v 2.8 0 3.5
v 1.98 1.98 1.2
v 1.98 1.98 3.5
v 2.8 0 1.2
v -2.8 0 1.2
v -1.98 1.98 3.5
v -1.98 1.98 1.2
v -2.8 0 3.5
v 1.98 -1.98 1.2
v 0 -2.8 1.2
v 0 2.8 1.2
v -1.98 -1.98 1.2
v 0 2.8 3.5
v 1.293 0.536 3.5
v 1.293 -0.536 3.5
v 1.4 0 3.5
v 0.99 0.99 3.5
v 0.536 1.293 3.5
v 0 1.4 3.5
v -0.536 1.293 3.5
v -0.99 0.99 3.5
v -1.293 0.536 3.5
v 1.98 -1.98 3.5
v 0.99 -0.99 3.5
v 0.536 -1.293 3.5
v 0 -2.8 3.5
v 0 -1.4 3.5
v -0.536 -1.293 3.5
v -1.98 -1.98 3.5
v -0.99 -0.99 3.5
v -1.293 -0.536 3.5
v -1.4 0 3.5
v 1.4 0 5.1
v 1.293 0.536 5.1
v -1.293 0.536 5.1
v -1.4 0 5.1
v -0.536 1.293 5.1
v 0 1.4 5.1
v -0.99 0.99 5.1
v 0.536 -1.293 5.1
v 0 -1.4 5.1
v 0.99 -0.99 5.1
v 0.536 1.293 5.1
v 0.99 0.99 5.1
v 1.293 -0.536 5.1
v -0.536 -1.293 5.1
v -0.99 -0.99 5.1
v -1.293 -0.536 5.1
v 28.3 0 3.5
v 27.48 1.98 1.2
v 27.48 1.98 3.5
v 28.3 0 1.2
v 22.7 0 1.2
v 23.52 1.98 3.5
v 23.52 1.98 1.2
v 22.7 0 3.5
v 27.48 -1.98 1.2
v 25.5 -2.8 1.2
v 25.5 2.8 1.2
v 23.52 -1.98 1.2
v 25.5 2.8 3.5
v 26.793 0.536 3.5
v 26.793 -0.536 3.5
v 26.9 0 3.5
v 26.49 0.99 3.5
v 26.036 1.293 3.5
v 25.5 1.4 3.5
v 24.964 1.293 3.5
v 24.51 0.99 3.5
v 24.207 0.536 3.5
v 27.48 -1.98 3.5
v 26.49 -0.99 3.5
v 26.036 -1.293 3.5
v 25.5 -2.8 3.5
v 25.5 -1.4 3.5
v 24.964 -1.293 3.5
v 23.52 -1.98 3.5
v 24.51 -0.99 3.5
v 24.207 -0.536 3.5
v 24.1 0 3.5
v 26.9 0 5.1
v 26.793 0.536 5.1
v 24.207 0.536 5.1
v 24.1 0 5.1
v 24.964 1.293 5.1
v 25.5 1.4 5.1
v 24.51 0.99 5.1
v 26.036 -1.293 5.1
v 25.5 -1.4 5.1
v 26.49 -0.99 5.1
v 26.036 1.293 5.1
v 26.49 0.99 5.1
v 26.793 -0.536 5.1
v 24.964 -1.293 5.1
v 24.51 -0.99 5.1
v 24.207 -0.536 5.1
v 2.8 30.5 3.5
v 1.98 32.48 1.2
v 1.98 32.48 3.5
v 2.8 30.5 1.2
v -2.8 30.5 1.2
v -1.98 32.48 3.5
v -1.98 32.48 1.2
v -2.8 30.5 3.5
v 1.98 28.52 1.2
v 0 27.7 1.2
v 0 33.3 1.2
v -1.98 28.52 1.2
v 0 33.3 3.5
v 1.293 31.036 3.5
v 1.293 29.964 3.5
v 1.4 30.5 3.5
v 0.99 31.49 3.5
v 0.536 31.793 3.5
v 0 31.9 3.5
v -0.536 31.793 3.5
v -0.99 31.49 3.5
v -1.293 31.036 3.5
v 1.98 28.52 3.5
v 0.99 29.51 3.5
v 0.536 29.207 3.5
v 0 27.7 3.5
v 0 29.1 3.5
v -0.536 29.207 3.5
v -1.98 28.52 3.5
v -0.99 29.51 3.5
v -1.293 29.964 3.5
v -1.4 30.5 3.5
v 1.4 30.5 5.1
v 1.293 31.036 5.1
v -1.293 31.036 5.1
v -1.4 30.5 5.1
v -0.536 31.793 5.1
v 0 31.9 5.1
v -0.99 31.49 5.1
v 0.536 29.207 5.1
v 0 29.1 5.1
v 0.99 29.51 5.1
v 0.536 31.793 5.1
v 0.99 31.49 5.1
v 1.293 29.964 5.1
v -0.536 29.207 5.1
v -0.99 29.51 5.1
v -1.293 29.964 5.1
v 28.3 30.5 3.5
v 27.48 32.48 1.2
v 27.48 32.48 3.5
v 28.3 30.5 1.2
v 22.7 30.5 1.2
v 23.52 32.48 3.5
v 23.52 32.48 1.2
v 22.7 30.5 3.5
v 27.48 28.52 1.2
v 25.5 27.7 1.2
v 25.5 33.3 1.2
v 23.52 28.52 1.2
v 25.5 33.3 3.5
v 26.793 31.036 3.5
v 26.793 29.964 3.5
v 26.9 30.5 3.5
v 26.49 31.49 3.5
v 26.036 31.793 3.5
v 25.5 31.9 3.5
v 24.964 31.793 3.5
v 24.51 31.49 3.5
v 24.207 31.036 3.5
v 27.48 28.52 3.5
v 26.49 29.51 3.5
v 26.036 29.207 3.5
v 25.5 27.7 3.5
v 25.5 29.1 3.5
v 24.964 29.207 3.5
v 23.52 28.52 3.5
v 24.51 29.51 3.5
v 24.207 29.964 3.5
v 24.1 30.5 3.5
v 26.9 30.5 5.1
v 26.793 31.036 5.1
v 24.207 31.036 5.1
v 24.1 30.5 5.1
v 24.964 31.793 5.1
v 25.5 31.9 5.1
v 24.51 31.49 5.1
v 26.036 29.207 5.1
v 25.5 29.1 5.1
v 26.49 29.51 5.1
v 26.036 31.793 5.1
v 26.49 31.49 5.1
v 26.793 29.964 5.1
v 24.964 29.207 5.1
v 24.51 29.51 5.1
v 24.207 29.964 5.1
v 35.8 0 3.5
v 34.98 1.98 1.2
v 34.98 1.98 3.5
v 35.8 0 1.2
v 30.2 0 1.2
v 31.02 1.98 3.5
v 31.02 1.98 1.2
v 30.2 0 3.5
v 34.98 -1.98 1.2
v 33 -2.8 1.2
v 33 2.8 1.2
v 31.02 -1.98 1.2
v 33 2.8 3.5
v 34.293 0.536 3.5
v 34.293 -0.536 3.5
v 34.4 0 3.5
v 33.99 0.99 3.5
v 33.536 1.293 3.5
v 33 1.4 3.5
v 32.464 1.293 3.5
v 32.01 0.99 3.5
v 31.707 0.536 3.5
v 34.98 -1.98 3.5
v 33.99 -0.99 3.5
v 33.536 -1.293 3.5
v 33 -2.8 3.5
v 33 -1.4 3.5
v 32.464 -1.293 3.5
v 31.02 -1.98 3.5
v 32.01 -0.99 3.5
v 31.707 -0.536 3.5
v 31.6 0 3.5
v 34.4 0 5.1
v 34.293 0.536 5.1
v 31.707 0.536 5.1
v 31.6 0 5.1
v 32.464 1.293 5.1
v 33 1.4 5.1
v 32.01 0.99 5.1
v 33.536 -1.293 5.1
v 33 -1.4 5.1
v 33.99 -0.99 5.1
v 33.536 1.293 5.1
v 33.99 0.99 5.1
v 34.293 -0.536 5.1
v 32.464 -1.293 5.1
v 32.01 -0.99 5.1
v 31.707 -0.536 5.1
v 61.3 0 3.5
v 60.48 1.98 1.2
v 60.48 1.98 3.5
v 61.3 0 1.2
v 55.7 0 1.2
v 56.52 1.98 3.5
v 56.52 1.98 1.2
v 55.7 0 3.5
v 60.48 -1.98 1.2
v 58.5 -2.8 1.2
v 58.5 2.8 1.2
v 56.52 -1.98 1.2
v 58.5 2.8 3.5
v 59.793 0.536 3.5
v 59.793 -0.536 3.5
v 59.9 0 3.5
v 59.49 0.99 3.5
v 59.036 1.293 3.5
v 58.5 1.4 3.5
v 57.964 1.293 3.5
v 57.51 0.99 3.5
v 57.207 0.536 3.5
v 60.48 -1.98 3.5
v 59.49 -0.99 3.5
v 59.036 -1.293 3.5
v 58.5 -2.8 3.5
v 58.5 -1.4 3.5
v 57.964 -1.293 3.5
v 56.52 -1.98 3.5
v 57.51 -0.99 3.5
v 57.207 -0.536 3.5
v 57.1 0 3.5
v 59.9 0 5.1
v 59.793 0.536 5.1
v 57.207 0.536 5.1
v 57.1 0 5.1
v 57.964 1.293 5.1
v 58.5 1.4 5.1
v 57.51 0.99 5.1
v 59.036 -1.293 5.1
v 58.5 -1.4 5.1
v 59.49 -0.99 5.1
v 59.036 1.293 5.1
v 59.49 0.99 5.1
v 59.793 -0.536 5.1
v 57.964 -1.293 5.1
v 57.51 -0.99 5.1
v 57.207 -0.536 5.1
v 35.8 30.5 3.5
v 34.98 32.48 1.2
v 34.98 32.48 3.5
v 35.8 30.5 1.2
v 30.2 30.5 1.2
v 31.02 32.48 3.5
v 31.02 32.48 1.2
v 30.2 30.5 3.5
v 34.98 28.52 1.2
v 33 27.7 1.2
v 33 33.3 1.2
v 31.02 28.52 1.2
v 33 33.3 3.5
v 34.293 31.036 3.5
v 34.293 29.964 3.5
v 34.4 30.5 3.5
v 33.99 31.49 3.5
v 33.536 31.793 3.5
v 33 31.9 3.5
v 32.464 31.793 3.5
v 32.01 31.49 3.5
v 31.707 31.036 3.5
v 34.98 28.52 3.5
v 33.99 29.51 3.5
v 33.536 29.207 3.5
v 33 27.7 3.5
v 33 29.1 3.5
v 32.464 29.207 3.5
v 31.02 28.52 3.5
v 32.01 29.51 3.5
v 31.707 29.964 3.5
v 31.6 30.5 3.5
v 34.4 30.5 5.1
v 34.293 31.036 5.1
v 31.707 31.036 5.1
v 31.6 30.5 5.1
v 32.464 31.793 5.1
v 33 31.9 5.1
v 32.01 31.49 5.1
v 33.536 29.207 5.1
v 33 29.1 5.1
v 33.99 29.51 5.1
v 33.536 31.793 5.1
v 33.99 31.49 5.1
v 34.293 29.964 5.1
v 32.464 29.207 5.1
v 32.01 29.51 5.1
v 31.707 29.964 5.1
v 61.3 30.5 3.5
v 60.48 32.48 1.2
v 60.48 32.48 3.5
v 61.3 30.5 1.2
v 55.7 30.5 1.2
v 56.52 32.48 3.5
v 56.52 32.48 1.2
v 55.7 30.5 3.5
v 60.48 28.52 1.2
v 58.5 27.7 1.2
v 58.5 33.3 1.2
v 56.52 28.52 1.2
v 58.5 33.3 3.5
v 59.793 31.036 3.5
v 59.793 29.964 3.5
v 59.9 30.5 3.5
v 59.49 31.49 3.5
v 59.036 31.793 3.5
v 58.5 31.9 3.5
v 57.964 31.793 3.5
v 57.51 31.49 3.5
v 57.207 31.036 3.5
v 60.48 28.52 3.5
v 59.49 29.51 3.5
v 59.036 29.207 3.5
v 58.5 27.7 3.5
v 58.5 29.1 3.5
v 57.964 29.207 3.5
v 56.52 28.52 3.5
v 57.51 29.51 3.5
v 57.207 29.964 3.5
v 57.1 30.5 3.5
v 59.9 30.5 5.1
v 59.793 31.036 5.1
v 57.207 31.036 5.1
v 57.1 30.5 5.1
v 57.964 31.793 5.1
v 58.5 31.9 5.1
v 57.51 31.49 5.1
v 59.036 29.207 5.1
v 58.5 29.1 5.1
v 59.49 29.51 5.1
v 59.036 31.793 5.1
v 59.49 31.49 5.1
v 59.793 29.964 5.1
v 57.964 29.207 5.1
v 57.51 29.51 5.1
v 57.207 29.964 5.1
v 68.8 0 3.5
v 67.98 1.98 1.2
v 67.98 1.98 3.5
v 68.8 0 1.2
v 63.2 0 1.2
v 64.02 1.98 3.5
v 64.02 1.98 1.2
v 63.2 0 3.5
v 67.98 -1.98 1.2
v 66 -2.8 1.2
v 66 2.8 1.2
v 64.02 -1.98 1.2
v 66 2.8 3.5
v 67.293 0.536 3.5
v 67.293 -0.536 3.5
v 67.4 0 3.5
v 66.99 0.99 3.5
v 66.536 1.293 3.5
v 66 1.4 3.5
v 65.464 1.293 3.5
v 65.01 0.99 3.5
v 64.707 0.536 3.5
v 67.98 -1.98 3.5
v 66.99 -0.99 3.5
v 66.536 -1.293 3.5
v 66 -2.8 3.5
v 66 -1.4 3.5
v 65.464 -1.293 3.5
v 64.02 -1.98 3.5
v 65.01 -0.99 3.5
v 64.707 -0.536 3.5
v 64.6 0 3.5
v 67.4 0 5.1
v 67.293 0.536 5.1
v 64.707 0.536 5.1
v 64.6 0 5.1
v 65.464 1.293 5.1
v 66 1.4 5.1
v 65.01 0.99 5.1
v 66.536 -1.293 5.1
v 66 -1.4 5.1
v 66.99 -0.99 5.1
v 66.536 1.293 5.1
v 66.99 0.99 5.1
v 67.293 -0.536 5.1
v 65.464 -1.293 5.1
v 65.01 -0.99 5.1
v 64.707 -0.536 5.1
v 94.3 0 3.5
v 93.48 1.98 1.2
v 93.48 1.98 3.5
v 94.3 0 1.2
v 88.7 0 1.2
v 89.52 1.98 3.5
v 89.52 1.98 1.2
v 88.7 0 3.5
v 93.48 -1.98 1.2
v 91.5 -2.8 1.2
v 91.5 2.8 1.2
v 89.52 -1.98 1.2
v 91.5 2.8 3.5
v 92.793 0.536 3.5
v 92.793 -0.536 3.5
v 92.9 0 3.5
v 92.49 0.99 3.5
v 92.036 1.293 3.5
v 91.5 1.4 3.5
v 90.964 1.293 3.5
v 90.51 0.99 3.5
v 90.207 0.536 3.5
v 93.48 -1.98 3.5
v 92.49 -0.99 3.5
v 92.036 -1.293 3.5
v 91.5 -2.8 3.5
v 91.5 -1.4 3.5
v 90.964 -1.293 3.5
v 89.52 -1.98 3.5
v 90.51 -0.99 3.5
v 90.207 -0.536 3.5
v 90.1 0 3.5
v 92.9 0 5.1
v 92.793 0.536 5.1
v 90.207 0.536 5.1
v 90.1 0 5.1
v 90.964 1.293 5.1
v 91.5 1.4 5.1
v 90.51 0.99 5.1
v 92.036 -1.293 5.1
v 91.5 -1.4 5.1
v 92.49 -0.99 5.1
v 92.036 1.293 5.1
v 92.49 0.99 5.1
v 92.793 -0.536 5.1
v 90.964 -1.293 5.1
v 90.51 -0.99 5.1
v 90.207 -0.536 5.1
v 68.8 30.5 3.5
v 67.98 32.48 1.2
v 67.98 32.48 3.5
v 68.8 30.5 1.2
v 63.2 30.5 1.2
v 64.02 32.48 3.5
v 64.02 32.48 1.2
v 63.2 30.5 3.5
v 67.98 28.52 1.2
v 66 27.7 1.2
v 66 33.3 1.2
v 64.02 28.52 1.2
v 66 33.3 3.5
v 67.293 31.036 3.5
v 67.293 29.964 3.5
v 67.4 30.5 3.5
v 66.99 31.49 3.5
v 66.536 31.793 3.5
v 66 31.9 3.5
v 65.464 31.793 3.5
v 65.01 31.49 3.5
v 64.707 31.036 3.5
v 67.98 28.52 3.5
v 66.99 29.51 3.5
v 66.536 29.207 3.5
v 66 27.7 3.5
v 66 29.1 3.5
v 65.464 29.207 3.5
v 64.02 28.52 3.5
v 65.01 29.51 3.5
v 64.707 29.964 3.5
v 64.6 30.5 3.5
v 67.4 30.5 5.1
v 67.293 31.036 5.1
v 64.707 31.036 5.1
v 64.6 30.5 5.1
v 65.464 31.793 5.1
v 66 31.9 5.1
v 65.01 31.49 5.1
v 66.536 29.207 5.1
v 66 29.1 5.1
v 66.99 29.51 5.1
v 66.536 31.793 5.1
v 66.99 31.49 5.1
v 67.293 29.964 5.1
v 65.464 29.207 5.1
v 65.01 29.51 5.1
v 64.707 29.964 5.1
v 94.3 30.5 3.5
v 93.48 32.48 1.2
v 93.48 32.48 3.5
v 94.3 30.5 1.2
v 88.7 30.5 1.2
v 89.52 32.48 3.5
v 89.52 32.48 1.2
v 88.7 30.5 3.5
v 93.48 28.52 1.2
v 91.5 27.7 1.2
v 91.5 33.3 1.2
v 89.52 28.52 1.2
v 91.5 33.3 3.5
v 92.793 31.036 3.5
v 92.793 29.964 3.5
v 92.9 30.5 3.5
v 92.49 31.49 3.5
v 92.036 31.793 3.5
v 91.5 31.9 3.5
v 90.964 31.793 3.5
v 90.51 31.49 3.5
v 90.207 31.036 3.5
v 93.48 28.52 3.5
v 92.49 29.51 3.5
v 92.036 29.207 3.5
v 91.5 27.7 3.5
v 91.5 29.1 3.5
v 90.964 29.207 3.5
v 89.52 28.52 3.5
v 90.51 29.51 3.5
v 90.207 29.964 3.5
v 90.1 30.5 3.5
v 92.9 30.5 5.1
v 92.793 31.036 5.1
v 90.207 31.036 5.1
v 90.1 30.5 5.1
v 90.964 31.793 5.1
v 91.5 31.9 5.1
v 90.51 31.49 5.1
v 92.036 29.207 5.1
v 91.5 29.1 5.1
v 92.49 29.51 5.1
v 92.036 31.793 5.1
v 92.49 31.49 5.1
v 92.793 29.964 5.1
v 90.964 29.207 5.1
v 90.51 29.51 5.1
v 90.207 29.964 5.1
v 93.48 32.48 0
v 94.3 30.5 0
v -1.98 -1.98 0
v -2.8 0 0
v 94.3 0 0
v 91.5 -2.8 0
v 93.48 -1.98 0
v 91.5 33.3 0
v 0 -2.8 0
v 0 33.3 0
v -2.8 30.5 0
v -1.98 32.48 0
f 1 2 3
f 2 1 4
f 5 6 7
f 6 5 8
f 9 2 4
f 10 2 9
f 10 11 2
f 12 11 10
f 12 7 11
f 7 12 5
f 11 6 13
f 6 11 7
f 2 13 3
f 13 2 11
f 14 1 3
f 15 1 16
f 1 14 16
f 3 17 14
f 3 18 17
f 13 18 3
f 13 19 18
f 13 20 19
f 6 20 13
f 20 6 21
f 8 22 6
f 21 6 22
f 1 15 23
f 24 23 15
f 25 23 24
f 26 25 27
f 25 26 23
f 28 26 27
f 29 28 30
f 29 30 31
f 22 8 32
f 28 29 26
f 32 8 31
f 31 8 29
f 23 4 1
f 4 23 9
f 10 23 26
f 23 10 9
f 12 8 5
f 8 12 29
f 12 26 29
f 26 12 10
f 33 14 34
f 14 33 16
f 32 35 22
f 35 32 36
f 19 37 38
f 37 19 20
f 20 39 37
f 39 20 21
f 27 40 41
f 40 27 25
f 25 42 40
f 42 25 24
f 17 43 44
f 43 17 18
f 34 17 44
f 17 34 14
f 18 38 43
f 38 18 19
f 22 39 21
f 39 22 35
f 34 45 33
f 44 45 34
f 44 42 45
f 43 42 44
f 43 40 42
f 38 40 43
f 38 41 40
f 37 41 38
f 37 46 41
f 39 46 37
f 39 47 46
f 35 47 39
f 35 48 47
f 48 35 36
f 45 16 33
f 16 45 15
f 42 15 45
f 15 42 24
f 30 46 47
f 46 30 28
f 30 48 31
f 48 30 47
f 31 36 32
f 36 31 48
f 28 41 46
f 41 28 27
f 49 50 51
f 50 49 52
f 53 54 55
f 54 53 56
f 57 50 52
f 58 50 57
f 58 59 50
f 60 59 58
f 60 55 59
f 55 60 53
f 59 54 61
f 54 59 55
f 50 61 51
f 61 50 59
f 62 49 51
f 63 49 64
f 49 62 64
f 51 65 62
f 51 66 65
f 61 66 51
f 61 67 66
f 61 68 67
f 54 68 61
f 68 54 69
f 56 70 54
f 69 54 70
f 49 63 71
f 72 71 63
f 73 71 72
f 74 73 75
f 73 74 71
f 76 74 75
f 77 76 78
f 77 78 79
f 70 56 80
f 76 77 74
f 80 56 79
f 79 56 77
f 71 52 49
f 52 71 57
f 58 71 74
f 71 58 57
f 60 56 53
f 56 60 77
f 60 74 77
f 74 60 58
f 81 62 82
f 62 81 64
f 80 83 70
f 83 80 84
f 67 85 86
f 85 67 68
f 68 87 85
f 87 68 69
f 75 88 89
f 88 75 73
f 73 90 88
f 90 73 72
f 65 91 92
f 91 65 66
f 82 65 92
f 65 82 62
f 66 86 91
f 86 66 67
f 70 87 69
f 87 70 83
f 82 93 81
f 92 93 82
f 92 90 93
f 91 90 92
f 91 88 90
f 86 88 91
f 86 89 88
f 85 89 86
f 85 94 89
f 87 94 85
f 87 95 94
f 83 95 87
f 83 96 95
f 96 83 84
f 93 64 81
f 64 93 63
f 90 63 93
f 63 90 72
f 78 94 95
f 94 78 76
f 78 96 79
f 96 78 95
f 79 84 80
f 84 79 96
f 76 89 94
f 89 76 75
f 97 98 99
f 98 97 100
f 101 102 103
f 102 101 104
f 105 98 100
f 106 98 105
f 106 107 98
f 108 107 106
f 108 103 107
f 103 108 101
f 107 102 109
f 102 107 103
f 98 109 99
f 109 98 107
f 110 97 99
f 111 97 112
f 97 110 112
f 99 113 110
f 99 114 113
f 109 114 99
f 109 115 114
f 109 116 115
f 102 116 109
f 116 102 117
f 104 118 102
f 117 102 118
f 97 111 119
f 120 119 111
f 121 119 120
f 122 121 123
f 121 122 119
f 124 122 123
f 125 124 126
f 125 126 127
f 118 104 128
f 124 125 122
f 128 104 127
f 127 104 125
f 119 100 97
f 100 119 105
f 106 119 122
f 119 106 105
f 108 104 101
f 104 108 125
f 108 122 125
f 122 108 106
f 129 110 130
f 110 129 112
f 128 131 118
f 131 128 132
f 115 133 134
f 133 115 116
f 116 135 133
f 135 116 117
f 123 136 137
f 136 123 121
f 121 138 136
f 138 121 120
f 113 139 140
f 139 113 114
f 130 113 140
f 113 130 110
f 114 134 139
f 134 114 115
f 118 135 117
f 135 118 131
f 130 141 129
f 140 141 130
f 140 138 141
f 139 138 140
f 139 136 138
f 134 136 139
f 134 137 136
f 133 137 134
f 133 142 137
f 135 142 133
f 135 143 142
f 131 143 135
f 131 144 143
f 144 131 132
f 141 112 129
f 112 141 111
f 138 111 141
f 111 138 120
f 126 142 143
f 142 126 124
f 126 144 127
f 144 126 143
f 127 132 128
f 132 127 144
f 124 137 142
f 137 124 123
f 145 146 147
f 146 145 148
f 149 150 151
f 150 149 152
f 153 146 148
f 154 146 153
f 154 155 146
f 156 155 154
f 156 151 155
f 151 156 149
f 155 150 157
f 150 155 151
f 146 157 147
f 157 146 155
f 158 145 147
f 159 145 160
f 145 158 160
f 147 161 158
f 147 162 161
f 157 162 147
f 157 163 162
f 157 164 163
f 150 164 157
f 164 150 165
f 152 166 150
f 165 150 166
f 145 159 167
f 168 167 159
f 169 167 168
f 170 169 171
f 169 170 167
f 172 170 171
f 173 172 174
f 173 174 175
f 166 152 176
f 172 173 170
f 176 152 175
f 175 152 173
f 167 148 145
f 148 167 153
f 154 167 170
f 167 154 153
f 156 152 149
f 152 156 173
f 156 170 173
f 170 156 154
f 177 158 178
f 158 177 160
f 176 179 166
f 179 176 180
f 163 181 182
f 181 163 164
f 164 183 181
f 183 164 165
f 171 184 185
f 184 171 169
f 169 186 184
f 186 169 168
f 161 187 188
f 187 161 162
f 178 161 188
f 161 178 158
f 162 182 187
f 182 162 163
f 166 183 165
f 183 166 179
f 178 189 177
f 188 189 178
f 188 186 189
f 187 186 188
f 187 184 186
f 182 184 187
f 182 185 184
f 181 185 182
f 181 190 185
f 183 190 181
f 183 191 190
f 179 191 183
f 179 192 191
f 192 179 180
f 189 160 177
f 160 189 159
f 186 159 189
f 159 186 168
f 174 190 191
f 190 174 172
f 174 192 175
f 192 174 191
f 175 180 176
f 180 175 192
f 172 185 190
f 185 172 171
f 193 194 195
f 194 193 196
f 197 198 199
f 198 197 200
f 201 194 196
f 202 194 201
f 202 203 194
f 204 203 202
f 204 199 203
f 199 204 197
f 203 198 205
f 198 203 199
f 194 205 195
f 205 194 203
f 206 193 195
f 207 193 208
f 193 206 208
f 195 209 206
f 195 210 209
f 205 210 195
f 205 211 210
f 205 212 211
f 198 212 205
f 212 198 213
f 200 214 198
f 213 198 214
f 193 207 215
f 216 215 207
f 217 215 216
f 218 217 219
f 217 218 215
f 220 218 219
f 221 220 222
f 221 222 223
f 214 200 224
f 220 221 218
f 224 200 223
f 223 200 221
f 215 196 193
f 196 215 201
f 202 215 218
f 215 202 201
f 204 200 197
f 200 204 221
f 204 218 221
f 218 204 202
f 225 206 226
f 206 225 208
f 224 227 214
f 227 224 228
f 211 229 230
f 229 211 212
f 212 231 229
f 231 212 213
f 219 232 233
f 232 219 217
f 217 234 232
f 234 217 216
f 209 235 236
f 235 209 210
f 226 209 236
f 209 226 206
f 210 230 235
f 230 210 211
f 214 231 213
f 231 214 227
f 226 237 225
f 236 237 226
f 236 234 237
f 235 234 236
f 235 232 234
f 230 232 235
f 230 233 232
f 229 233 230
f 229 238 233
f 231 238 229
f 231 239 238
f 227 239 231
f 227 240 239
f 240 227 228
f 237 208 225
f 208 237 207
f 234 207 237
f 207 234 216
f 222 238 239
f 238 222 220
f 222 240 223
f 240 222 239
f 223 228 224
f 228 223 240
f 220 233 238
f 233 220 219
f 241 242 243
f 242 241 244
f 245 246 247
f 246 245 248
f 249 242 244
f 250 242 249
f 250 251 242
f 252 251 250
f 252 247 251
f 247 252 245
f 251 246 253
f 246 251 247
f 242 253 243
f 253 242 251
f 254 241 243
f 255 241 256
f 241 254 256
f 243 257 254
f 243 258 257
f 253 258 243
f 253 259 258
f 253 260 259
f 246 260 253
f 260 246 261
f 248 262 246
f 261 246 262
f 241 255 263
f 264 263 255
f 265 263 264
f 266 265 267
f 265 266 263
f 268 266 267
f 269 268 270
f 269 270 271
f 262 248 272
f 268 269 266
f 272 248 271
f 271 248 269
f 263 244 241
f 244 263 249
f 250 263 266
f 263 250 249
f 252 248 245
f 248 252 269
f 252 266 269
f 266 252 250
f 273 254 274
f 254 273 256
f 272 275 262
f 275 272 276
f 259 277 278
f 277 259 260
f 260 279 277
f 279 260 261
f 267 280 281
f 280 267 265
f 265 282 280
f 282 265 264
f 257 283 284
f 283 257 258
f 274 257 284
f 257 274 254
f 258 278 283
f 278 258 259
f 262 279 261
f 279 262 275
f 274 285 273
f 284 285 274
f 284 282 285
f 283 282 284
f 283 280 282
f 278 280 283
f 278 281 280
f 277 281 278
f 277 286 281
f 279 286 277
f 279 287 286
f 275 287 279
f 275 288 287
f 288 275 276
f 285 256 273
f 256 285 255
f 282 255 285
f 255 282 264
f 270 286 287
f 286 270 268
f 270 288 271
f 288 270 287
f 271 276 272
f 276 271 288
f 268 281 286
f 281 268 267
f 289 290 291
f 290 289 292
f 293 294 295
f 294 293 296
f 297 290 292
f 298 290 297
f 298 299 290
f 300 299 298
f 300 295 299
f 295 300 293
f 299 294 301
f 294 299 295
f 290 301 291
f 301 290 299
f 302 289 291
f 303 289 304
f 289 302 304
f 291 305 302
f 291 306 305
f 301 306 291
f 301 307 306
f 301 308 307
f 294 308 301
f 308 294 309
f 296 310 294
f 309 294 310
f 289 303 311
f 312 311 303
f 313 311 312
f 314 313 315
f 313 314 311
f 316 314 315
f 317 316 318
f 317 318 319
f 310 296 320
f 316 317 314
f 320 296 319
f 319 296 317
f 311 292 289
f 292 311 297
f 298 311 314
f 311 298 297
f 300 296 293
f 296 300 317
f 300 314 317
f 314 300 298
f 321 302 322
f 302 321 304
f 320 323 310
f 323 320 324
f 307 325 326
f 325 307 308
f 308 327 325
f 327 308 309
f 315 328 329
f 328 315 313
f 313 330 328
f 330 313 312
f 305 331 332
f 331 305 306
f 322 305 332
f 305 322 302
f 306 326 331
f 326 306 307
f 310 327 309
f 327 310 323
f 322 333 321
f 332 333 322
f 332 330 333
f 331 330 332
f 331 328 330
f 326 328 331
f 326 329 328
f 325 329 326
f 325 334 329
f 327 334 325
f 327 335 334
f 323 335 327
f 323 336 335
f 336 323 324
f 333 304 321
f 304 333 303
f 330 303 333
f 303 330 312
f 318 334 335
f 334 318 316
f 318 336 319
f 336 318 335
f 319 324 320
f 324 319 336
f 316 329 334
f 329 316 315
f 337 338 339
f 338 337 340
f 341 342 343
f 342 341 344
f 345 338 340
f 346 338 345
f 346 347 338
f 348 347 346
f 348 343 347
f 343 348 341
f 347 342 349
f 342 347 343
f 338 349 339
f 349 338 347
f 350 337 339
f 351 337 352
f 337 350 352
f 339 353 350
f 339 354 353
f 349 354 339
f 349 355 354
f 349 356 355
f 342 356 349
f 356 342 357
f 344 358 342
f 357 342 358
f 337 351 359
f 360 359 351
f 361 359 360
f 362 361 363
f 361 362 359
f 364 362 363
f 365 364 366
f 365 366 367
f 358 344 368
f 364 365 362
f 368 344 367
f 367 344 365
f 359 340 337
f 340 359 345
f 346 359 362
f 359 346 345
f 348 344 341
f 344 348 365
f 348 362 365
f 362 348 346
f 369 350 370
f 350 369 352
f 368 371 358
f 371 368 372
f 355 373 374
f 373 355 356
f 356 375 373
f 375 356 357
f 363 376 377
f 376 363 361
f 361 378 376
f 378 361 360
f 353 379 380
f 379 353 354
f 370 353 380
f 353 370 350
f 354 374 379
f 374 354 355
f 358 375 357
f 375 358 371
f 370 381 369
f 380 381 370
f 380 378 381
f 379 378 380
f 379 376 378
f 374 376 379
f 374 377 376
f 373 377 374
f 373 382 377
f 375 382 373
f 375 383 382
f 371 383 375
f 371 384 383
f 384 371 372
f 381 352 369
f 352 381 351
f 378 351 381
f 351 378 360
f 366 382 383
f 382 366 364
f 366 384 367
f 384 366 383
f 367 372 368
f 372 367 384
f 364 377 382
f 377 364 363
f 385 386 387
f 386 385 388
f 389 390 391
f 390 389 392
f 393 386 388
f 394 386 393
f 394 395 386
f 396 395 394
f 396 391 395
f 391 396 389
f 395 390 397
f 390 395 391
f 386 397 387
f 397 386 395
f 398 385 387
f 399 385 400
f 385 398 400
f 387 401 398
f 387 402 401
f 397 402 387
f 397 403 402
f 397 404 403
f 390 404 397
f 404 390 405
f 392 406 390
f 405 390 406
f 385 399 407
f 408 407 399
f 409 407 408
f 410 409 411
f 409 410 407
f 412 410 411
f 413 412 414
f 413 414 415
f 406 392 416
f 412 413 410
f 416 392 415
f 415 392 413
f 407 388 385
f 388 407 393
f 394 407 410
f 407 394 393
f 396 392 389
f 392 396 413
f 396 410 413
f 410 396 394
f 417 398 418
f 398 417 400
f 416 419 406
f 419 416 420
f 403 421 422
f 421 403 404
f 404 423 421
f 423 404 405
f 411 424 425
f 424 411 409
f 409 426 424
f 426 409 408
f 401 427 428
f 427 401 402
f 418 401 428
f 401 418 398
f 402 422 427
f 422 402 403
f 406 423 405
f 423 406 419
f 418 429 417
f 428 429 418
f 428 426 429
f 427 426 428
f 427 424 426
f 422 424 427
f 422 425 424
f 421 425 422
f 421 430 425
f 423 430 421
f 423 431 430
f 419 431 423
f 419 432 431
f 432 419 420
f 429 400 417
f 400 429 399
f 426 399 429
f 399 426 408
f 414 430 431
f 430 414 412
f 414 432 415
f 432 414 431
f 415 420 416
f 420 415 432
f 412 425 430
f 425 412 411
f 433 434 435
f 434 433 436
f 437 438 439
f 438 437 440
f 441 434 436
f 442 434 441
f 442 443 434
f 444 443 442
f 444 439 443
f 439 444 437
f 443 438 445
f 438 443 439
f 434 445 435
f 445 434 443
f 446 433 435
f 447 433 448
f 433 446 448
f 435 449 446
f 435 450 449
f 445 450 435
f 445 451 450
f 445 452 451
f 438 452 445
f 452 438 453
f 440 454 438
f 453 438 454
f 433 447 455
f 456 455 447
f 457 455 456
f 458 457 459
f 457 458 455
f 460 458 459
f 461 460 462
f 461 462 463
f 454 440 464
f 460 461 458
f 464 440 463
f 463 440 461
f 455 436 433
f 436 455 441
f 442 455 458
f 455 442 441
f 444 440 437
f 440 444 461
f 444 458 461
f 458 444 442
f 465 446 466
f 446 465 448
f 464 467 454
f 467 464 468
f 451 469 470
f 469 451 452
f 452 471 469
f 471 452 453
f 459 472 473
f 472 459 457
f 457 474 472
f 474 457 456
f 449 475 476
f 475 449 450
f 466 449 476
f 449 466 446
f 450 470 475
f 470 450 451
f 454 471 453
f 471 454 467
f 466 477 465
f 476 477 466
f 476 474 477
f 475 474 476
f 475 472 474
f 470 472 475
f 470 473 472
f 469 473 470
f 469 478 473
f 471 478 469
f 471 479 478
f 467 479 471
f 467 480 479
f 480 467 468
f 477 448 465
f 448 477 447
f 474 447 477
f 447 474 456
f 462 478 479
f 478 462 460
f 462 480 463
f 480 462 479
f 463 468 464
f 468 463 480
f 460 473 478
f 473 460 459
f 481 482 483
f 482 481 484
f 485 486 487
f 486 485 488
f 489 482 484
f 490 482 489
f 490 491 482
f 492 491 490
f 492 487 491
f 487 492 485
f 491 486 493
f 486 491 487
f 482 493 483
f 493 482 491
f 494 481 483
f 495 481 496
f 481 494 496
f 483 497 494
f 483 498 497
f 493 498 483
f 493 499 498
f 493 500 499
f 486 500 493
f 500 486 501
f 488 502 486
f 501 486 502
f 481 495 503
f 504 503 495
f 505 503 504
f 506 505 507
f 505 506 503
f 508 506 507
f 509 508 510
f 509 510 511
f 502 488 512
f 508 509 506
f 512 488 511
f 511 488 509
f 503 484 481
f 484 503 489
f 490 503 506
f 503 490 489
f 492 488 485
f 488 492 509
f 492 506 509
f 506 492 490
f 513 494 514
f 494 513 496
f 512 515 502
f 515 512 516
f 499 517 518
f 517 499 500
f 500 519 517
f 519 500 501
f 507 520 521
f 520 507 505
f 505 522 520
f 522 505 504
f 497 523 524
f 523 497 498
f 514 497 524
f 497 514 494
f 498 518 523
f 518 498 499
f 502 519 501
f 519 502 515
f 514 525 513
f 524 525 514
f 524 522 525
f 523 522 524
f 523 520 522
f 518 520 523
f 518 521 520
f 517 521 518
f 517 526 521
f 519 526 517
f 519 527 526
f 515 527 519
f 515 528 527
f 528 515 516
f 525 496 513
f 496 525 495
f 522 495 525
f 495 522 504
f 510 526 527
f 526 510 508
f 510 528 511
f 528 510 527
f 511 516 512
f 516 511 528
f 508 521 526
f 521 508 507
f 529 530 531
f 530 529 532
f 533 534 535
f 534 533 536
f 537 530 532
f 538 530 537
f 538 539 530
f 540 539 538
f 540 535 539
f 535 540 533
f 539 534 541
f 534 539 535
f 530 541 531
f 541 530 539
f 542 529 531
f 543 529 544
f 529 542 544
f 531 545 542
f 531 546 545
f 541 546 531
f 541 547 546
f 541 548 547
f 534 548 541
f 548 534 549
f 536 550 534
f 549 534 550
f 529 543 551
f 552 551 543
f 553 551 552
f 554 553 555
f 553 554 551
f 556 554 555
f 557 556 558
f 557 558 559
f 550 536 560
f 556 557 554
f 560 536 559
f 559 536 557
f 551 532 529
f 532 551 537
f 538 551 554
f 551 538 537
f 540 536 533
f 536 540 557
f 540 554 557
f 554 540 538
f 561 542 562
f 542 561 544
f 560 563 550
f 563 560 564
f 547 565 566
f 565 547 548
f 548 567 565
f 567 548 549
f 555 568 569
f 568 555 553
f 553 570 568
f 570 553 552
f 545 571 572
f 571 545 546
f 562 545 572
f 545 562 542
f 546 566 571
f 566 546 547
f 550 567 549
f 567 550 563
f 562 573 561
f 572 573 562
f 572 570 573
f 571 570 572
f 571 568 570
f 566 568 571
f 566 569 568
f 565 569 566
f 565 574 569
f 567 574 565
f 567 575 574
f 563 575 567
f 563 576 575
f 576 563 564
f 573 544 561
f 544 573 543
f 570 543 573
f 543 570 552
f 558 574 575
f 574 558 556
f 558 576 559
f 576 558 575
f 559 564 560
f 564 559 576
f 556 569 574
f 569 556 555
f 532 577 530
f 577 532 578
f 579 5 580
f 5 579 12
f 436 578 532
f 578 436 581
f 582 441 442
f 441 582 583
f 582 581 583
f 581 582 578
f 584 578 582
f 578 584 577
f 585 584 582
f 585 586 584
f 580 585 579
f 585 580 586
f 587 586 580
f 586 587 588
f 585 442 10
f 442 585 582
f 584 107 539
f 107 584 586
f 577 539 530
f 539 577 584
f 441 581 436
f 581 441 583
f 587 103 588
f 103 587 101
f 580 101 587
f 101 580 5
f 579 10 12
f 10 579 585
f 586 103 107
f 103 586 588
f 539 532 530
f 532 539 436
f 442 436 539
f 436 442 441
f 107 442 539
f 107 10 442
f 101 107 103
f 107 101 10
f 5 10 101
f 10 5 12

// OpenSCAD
/*
  Mount for uln2003A driver boards, common with 28BYJ-48 stepper motors.
*/

driver_board_hole_d = 2.8;
driver_board_standoff_d = driver_board_hole_d*2;
driver_board_standoff_h = 2.30; // how high the board should be off the bottom
driver_board_w = 31.0; // how much larger than board dimensions to make the base; //31.68 actually
driver_board_l = 36; // 35.2, actually
driver_board_thickness = 1.6; // 1.51 actually

// Thickness of bottom. Makes sense to be a multiple of your layer height.
floor_thickness = 1.2;

// Spacing between holes on X/Y planes
driver_board_hole_x_spacing = 25.5;
driver_board_hole_y_spacing = 30.5;

boards = 3; // number of boards to fit
board_spacing = 2; // spacing between boards, if multiple


module standoffs() {
  module standoff() {
    cylinder(d=driver_board_standoff_d, h=driver_board_standoff_h, $fn=8);
    translate([0,0,driver_board_standoff_h]) cylinder(d=driver_board_hole_d, h=driver_board_thickness, $fn=16);
  }

  translate([0,0,floor_thickness]) {
    translate([0, 0, 0]) standoff();
    translate([driver_board_hole_x_spacing, 0, 0]) standoff();
    translate([0, driver_board_hole_y_spacing, 0]) standoff();
    translate([driver_board_hole_x_spacing, driver_board_hole_y_spacing, 0]) standoff();
  }
}

module floor() {

  module floor_corner() {
    cylinder(d=driver_board_standoff_d, h=floor_thickness, $fn=8);
  }

  hull() {
    translate([0, 0, 0]) floor_corner();
    translate([driver_board_hole_x_spacing, 0, 0]) floor_corner();
    translate([0, driver_board_hole_y_spacing, 0]) floor_corner();
    translate([driver_board_hole_x_spacing, driver_board_hole_y_spacing, 0]) floor_corner();
  }
}

hull() {
  for (f = [0:boards-1]) {
    translate([(driver_board_w*f)+(board_spacing*f), 0, 0]) floor();
  }
}

for (f = [0:boards-1]) {
  translate([(driver_board_w*f)+(board_spacing*f), 0, 0]) standoffs();
}
